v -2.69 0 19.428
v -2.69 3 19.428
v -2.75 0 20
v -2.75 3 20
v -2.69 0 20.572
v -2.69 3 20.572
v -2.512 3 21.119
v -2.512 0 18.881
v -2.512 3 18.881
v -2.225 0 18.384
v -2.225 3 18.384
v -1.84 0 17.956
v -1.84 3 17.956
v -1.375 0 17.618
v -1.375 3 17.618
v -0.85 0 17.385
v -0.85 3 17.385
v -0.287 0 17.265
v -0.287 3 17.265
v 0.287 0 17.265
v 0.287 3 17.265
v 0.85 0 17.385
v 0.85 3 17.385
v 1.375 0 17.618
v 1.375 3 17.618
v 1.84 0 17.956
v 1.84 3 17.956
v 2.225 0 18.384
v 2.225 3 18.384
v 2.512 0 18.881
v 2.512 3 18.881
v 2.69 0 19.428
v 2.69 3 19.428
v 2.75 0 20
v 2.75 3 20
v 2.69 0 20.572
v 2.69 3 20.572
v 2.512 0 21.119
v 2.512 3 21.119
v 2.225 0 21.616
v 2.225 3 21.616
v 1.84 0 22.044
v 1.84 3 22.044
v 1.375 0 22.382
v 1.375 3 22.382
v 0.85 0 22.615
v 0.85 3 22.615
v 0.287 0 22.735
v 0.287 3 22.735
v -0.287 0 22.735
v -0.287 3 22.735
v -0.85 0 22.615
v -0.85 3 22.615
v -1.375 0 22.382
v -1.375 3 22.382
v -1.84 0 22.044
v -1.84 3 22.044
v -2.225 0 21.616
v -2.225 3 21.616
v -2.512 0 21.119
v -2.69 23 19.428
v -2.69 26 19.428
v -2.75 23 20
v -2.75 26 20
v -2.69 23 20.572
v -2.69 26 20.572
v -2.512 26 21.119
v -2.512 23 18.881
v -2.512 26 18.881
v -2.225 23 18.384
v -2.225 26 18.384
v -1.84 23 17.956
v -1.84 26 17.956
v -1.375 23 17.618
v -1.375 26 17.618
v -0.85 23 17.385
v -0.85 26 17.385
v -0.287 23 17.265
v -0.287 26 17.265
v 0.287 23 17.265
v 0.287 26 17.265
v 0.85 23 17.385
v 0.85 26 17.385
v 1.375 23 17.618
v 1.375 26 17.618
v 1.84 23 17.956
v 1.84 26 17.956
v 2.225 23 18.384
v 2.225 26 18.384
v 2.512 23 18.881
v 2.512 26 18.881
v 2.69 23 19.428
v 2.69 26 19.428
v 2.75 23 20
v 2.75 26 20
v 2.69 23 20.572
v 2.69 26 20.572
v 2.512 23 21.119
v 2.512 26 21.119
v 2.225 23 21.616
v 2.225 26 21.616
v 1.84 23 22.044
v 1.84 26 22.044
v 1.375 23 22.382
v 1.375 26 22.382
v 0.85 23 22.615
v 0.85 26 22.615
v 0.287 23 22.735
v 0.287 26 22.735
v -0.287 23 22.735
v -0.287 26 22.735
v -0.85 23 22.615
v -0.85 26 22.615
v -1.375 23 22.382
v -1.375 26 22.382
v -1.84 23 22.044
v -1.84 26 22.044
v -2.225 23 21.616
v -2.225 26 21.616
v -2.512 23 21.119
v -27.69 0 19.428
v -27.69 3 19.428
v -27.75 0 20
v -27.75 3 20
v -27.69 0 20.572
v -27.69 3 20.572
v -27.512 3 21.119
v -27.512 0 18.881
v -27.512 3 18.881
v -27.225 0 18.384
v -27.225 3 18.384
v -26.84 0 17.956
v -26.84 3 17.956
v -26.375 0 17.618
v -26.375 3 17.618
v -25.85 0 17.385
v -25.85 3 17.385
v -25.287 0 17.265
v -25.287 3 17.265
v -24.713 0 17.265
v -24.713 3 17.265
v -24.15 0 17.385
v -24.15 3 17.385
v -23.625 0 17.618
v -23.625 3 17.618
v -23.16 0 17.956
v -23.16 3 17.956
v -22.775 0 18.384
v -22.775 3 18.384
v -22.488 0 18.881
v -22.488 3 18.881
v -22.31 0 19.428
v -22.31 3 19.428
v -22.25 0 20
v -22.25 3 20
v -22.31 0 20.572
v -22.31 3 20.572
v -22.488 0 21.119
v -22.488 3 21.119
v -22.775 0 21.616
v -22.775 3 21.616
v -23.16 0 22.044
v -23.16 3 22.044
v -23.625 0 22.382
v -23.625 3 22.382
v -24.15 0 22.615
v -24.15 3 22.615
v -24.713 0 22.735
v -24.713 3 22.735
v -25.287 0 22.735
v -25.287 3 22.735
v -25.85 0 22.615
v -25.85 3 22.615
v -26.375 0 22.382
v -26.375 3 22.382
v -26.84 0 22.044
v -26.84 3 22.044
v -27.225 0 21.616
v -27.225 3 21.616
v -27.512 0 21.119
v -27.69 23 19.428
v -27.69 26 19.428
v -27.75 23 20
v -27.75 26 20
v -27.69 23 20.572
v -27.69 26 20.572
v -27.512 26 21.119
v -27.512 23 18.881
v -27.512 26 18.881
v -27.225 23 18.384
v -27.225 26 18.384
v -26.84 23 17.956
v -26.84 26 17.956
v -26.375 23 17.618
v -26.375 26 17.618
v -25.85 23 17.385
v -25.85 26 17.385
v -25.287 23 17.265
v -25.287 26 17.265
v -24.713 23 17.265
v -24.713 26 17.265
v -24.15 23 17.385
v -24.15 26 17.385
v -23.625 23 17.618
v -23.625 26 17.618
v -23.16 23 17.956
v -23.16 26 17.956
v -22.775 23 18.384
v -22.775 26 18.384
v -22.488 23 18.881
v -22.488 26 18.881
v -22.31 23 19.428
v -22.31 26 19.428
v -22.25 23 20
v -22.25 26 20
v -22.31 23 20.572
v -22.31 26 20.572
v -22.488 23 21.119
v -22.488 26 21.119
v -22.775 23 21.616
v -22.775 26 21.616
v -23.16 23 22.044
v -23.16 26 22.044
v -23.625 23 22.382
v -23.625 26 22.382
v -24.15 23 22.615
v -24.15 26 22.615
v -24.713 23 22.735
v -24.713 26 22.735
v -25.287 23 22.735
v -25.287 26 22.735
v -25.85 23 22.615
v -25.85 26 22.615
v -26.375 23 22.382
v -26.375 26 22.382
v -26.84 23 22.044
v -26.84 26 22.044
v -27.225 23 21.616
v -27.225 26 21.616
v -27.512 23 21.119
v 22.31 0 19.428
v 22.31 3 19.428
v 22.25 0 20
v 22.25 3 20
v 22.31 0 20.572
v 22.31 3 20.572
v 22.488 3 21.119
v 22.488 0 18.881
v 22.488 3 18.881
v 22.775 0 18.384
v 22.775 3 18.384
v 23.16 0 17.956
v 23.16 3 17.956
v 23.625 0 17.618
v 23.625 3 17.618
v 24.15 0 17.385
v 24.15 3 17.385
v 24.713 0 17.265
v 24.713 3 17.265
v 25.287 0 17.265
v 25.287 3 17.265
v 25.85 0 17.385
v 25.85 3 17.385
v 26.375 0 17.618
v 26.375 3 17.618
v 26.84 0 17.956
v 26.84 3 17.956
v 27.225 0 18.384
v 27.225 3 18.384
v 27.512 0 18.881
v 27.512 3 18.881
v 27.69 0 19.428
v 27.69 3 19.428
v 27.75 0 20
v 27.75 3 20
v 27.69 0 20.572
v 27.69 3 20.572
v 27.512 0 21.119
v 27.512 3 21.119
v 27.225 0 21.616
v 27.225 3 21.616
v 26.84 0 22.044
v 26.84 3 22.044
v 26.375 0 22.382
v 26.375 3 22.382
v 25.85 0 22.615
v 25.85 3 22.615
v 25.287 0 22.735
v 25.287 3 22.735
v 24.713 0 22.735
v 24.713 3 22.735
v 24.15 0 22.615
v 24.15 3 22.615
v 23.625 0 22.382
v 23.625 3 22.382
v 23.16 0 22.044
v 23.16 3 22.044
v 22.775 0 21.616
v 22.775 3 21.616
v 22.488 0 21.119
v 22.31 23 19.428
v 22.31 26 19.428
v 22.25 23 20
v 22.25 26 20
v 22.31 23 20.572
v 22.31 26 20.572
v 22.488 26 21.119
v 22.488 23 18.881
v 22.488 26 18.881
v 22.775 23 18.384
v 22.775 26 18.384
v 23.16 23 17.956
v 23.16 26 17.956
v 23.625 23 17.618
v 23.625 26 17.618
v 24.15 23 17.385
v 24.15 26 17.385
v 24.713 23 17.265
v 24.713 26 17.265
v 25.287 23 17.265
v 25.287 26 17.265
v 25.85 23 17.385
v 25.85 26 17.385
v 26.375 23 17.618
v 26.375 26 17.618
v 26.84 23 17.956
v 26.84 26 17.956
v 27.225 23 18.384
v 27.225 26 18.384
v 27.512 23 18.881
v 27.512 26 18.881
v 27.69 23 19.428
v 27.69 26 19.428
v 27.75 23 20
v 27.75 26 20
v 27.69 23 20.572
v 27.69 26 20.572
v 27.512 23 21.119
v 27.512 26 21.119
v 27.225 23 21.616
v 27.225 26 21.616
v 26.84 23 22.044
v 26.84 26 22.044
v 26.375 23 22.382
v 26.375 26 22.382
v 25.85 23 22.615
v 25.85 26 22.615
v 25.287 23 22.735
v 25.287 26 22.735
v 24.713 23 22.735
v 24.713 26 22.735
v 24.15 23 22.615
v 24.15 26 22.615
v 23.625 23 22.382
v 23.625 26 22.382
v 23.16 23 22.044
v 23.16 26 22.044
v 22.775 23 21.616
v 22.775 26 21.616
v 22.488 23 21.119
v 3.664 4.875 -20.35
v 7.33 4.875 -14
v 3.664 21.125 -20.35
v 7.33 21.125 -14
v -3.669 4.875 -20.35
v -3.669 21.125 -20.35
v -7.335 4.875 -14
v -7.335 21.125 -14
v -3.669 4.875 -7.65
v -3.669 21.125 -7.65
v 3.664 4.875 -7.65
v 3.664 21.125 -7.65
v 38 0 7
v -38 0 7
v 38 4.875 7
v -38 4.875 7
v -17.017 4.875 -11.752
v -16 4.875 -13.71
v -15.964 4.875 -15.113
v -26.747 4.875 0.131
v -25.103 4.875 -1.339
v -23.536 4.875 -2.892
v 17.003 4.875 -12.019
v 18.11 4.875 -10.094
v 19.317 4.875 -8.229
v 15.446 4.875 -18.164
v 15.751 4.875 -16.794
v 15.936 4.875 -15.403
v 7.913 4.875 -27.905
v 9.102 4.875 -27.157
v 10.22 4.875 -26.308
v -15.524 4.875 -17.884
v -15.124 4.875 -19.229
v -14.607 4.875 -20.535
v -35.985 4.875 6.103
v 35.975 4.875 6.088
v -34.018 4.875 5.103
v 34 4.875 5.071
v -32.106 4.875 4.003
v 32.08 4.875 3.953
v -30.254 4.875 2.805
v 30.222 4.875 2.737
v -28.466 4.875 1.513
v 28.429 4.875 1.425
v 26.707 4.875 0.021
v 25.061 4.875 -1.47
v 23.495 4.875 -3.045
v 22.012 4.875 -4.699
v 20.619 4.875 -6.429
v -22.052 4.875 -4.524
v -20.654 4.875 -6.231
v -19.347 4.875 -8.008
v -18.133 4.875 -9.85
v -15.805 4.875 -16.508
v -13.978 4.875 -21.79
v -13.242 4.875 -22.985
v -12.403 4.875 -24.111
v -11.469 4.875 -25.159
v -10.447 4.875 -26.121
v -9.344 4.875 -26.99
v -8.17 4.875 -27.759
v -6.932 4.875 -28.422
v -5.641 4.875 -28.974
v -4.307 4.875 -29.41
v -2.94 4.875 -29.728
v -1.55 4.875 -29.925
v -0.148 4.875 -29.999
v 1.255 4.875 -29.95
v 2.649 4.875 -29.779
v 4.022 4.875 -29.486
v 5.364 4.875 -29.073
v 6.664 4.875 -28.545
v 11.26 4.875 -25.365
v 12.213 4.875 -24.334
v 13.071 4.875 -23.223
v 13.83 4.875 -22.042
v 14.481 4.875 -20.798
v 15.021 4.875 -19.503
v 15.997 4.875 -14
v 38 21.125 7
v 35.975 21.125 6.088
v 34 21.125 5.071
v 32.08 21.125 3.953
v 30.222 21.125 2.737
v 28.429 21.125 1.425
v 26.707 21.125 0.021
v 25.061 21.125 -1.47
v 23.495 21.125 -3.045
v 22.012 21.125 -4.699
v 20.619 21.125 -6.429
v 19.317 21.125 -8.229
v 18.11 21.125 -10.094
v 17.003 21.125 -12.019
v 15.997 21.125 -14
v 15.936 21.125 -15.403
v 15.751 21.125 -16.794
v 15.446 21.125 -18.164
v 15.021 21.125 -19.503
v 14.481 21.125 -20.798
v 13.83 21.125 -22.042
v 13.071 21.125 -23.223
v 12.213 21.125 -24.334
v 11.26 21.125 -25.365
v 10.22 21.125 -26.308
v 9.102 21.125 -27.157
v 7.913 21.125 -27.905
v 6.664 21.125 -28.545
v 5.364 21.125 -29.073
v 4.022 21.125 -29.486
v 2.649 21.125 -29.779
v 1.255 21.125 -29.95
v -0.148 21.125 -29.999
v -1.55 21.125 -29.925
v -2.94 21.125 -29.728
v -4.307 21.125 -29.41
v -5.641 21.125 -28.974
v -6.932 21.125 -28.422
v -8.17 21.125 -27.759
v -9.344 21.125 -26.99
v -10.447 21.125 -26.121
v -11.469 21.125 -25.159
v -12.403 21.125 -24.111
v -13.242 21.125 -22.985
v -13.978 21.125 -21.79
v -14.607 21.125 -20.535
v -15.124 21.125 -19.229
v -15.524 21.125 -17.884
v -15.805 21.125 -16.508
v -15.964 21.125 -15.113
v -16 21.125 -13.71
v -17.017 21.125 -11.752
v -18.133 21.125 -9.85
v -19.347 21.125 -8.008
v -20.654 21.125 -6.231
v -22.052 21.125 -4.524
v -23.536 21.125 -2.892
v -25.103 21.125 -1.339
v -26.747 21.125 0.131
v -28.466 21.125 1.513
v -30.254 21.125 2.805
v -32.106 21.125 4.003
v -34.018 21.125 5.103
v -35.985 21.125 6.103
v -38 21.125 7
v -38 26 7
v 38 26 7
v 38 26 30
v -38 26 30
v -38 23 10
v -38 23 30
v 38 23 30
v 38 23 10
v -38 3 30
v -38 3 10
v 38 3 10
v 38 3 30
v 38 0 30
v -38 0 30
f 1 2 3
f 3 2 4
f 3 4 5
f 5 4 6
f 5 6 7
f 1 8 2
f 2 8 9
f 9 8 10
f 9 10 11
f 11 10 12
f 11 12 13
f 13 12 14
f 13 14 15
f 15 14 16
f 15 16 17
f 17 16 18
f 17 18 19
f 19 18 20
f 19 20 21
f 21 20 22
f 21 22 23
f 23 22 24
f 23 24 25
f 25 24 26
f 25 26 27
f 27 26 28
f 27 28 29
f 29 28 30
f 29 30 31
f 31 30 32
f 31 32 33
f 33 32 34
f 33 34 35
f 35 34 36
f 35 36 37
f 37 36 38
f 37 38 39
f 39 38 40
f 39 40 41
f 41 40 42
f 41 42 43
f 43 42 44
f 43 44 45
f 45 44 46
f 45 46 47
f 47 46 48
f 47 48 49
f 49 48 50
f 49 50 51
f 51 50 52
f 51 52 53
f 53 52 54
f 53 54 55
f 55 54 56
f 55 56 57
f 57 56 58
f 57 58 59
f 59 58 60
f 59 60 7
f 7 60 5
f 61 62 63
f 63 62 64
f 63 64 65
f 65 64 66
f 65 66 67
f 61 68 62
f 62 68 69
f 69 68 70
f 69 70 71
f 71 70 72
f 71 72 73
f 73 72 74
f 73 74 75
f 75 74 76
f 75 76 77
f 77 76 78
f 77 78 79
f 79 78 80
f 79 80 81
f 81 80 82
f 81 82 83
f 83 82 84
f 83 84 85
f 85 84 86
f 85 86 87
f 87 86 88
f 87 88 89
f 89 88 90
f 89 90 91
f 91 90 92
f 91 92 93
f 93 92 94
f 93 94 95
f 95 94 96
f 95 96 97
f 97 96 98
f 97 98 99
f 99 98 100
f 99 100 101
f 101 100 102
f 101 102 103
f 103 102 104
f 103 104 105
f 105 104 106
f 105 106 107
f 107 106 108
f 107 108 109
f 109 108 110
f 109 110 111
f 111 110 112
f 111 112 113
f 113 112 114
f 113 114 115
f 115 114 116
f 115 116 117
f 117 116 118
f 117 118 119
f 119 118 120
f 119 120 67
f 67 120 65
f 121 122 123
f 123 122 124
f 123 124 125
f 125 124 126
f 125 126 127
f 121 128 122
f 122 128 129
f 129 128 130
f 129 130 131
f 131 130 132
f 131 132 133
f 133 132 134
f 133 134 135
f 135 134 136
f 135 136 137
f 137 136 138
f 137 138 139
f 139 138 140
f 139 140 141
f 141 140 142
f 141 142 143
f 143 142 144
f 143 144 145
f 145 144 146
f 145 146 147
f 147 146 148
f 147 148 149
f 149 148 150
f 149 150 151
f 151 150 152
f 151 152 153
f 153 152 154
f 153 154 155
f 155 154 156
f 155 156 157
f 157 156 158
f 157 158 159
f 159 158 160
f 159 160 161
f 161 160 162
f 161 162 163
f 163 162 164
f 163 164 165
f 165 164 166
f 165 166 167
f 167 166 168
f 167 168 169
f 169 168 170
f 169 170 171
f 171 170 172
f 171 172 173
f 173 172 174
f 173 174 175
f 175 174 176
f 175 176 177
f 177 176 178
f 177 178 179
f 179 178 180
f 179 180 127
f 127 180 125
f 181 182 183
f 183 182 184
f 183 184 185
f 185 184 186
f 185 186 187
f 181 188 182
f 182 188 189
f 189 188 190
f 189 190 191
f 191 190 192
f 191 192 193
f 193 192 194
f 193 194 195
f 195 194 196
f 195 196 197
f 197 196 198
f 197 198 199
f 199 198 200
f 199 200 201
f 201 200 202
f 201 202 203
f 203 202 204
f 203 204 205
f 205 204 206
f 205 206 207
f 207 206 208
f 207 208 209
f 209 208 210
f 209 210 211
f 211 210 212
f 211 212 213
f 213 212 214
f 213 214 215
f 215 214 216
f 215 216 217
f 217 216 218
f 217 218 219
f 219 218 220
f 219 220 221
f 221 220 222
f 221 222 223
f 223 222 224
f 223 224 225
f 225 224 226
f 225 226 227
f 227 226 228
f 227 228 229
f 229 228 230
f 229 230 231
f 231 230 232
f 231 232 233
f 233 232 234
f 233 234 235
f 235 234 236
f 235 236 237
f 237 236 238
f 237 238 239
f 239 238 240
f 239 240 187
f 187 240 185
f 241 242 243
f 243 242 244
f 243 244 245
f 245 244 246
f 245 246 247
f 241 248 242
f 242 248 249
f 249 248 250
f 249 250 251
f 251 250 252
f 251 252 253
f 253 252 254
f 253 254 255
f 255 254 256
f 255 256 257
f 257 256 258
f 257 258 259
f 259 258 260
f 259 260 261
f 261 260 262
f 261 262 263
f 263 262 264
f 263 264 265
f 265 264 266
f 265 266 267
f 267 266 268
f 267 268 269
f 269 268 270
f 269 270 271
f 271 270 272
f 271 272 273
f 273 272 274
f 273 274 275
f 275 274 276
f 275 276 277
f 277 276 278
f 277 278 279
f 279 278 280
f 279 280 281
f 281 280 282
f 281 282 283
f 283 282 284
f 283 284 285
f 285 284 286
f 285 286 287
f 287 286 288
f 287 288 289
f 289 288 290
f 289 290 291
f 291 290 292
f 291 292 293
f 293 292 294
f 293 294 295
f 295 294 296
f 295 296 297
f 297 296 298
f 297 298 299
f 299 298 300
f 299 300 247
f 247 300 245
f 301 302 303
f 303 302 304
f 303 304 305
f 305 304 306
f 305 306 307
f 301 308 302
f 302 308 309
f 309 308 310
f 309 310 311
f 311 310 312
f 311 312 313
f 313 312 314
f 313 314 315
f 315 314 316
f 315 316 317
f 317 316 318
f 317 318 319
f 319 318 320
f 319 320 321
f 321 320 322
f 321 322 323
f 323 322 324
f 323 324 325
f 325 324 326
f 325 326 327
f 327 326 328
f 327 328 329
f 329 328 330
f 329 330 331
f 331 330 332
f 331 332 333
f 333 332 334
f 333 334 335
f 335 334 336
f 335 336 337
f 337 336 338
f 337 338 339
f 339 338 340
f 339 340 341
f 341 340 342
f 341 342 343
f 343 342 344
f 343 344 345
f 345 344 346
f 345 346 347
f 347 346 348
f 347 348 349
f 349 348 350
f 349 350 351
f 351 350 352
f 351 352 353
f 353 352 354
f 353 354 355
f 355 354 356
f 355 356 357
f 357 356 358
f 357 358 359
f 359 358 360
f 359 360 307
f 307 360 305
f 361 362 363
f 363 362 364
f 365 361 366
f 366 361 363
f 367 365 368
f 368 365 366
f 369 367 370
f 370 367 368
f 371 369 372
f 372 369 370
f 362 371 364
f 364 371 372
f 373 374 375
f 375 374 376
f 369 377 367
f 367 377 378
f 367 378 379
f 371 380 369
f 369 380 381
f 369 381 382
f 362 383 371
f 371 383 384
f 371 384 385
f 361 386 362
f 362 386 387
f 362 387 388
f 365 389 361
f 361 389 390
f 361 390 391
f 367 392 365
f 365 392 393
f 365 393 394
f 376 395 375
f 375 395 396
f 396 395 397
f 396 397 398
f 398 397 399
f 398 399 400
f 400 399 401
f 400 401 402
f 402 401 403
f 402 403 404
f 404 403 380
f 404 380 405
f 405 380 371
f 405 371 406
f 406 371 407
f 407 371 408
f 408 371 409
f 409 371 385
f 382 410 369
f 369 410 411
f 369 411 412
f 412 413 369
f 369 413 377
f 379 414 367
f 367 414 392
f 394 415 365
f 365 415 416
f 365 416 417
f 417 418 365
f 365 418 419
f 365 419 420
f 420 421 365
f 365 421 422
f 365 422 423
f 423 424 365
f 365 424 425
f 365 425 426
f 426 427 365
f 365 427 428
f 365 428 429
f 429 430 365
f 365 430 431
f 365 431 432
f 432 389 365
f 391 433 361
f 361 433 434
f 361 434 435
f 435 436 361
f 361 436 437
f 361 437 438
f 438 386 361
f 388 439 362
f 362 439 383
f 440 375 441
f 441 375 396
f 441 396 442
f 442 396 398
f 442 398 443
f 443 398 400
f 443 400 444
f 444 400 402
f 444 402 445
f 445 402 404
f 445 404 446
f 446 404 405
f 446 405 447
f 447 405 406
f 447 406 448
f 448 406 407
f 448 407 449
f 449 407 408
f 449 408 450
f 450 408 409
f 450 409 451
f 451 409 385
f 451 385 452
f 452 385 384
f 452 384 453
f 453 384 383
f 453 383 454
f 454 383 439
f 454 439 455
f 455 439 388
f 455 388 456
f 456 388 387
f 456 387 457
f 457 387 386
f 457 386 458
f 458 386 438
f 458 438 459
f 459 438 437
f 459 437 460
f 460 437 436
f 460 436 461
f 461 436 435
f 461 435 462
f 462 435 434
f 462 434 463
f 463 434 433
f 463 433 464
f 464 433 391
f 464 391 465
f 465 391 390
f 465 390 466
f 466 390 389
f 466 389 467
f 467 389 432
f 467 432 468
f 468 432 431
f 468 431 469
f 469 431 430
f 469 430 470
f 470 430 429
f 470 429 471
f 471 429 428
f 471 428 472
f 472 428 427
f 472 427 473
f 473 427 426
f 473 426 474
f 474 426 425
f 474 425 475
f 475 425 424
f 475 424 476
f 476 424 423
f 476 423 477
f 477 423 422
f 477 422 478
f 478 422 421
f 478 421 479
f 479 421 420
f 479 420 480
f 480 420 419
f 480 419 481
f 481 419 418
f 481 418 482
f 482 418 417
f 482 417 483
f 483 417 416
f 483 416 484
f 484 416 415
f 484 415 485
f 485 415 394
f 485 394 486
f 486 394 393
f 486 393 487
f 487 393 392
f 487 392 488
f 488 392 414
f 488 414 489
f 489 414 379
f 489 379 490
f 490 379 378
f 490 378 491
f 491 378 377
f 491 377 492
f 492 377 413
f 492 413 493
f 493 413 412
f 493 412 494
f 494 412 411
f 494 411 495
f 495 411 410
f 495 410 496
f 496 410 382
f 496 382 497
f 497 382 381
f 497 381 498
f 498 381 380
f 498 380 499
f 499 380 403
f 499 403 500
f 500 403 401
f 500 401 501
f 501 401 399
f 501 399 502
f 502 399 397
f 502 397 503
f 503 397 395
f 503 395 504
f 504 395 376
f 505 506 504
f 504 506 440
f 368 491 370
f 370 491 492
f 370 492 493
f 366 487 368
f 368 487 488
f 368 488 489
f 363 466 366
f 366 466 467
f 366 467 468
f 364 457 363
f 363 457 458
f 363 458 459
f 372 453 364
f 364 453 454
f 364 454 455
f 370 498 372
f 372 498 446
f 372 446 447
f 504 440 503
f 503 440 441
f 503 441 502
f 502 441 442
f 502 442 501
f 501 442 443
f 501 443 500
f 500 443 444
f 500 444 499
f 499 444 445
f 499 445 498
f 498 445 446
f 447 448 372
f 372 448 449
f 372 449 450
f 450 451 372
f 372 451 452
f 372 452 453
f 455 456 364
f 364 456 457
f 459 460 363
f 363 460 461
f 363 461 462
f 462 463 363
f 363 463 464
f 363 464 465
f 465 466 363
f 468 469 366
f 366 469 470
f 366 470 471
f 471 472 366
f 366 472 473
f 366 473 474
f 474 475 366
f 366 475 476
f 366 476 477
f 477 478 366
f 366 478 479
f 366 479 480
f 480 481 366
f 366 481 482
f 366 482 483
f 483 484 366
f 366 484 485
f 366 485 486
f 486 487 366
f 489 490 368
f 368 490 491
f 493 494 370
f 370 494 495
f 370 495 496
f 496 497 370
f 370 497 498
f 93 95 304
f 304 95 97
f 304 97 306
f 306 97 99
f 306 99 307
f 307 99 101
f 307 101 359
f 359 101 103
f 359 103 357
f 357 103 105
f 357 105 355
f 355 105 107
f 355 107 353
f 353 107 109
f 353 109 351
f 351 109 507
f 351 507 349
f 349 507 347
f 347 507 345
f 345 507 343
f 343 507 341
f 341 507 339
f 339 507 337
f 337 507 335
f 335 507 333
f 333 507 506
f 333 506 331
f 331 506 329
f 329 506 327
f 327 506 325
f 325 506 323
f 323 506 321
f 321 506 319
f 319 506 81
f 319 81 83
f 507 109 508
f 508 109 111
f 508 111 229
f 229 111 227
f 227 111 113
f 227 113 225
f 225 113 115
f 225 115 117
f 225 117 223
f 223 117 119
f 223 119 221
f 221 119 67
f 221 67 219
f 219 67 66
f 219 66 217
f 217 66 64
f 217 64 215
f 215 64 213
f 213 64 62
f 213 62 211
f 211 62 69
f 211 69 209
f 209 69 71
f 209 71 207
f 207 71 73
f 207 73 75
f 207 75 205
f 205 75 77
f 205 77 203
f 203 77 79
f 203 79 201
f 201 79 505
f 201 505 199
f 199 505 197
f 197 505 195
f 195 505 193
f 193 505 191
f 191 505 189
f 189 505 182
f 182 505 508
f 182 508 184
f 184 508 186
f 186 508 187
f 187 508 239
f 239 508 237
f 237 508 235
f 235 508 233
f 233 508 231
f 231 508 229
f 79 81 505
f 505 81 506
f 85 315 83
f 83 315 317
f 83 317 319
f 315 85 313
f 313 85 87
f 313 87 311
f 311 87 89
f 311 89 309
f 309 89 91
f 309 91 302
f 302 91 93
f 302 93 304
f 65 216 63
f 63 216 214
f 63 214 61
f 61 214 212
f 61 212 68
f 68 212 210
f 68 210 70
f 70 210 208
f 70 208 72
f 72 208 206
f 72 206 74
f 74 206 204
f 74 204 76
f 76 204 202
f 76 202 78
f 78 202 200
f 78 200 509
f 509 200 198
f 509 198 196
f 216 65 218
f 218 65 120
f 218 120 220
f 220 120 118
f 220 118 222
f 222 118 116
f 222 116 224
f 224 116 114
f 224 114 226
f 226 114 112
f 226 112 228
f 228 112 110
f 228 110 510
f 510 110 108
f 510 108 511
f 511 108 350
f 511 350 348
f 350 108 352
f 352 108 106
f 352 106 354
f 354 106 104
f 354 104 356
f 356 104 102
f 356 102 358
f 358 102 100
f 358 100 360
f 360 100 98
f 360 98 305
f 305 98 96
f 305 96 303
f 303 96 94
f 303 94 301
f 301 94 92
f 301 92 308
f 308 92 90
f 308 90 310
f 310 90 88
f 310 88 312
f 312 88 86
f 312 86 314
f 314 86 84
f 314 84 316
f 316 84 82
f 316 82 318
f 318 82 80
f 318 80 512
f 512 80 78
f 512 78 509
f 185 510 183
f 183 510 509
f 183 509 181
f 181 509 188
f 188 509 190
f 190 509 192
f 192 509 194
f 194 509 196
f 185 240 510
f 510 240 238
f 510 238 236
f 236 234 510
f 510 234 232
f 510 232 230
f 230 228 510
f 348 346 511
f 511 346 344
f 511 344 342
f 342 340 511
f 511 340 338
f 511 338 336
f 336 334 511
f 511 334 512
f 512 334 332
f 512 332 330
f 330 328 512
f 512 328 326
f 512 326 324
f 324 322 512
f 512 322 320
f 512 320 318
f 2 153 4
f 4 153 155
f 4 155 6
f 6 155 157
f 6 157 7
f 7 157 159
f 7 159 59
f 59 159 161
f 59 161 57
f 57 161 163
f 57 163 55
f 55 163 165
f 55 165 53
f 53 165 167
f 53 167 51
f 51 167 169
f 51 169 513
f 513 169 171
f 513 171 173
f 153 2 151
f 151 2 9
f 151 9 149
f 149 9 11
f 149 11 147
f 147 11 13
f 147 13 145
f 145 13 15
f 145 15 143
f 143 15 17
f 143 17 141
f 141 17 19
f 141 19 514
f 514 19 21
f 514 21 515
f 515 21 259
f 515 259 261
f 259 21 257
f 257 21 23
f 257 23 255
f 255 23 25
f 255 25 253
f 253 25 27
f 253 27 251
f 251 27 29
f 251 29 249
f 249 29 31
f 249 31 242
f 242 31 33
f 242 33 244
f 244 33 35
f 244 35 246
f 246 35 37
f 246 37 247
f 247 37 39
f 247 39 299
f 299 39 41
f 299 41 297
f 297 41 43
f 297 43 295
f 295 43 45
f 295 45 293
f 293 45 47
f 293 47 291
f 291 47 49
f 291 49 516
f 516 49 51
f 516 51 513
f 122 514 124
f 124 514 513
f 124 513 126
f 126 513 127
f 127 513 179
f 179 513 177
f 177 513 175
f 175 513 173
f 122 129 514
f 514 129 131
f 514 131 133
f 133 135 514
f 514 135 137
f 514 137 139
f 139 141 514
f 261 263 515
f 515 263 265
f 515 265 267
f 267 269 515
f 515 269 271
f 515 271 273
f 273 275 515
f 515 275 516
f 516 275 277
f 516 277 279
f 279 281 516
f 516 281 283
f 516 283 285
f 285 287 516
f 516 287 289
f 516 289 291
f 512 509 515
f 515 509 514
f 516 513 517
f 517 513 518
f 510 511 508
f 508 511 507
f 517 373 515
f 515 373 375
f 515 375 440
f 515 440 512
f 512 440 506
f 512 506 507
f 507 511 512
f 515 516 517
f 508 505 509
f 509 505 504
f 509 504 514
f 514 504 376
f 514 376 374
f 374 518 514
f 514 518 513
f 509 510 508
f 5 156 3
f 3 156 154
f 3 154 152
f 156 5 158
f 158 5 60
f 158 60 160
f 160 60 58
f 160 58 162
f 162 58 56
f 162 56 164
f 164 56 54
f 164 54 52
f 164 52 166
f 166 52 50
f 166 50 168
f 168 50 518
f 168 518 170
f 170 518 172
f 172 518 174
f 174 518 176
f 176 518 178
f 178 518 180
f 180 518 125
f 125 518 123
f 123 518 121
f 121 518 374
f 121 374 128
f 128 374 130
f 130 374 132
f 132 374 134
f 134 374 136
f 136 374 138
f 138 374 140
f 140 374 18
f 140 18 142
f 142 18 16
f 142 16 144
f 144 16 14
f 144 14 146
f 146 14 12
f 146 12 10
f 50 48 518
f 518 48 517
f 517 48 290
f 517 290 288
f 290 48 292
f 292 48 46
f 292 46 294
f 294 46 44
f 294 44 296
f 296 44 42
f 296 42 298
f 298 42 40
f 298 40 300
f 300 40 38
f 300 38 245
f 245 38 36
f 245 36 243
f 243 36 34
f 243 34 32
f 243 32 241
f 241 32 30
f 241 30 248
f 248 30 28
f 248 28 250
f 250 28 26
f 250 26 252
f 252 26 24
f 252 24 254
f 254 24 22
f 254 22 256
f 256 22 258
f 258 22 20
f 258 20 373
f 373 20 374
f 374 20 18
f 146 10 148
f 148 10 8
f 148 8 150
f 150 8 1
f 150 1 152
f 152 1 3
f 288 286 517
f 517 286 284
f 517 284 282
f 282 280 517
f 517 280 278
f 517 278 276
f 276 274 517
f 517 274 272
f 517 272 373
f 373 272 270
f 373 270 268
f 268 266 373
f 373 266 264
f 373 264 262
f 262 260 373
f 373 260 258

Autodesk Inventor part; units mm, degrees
ref_plane "YZ Plane" through (0, 0, 0) normal (1, 0, 0) x (0, 1, 0)
ref_plane "XZ Plane" through (0, 0, 0) normal (0, 1, 0) x (-1, 0, 0)
ref_plane "XY Plane" through (0, 0, 0) normal (0, 0, 1) x (1, 0, 0)
sketch "Sketch1" plane through (0, 0, 0) normal (0, 1, 0) x (-1, 0, 0)
  line L0 (-38, 30) -> (38, 30)
  line L1 (38, 30) -> (38, -30)
  line L2 (38, -30) -> (-38, -30)
  line L3 (-38, -30) -> (-38, 30)
  line L4 (-38, 30) -> (38, -30) construction
  line L5 (38, 30) -> (-38, -30) construction
  point P0 (0, 0)
  dimension "d0" = 60
  dimension "d1" = 76
extrude "Extrusion1" add sketch "Sketch1" along normal blind 26
sketch "Sketch2" plane through (-38, 0, 30) normal (0, 0, 1) x (1, 0, 0)
  line L0 (0, 0) -> (0, 26) projected
  line L1 (76, 0) -> (76, 26) projected
  line L2 (0, 23) -> (76, 23)
  line L3 (76, 23) -> (76, 3)
  line L4 (76, 3) -> (0, 3)
  line L5 (0, 3) -> (0, 23)
  line L6 (0, 26) -> (76, 26) projected
  line L7 (0, 0) -> (76, 0) projected
  point P0 (38, 0)
  point P1 (0, 3)
  dimension "d4" = 3
  dimension "d5" = 3
extrude "Extrusion2" cut sketch "Sketch2" against normal blind 20 contours L0 L2 L1 L4
sketch "Sketch3" plane through (0, 26, 0) normal (0, 1, 0) x (1, 0, 0)
  arc A0 (15.9974, 14) -> (-16, 13.7099) centre (-0.0026, 14) ccw
  line L0 (38, 30) -> (-38, 30) projected
  line L1 (-38, 30) -> (-38, -30) projected
  arc A1 (-38, -7) -> (-16, 13.7099) centre (-54.3067, 32.3627) ccw
  line L2 (38, -30) -> (38, 30) projected
  line L3 (38, 30) -> (-38, 30) projected
  line L4 (38, -30) -> (-38, -30) projected
  arc A2 (15.9974, 14) -> (38, -7) centre (54.478, 32.2913) ccw
  line L5 (-38, -10) -> (-38, -30) projected
  line L6 (-38, -7) -> (38, -7)
  line L7 (38, -10) -> (-38, -10) projected
  point P0 (0, 0)
  point P1 (38, -7)
  point P2 (-0.0026, 30)
  dimension "d8" = 32
  dimension "d10" = 3
extrude "Extrusion3" cut sketch "Sketch3" against normal through all contours A0 L0 L2 A2 | A0 A1 L1 L0
sketch "Sketch5" plane through (0, 26, 0) normal (0, 1, 0) x (1, 0, 0)
  arc A0 (15.9974, 14) -> (-16, 13.7099) centre (-0.0026, 14) ccw
  line L0 (38, 30) -> (-38, 30)
  line L1 (-38, 30) -> (-38, -30)
  arc A1 (-38, -7) -> (-16, 13.7099) centre (-54.3067, 32.3627) ccw
  line L2 (38, -30) -> (38, 30)
  line L3 (38, 30) -> (-38, 30)
  line L4 (38, -30) -> (-38, -30)
  arc A2 (15.9974, 14) -> (38, -7) centre (54.478, 32.2913) ccw
  line L5 (-38, -10) -> (-38, -30)
  line L6 (-38, -7) -> (38, -7)
  line L7 (38, -10) -> (-38, -10)
  point P0 (0, 0)
  point P1 (0, 0)
  point P2 (38, -7)
  point P3 (-0.0026, 30)
  dimension "d13" = 32
  dimension "d14" = 3
sketch "Sketch7" plane through (0, 0, 0) normal (0, -1, 0) x (1, 0, 0)
  arc A0 (-16, -13.7099) -> (15.9974, -14) centre (-0.0026, -14) ccw projected
  arc A1 (-16, -13.7099) -> (15.9974, -14) centre (-0.0026, -14) ccw
  line L0 (38, 30) -> (38, 7) projected
  arc A2 (38, 7) -> (15.9974, -14) centre (54.478, -32.2913) ccw
  arc A3 (-16, -13.7099) -> (-38, 7) centre (-54.3067, -32.3627) ccw projected
  arc A4 (-16, -13.7099) -> (-38, 7) centre (-54.3067, -32.3627) ccw
  line L1 (-38, 10) -> (38, 10) projected
  line L2 (38, 10) -> (-38, 10)
  line L3 (38, 7) -> (38, 10)
  line L4 (-38, 7) -> (-38, 30) projected
  line L5 (-38, 7) -> (-38, 10)
  arc A5 (38, 7) -> (15.9974, -14) centre (54.478, -32.2913) ccw projected
  line L6 (38, 7) -> (-38, 7)
  point P0 (0, 0)
extrude "Extrusion4" cut sketch "Sketch5" against normal blind 4.875 contours A2 L6 A1 A0
extrude "Extrusion5" cut sketch "Sketch7" against normal blind 4.875 contours A3 L6 A2 A0
sketch "Sketch9" plane through (0, 21.125, 0) normal (0, 1, 0) x (1, 0, 0)
  arc A0 (15.9974, 14) -> (-16, 13.7099) centre (-0.0026, 14) ccw projected
  line L0 (3.6635, 20.35) -> (7.3297, 14)
  line L1 (7.3297, 14) -> (3.6635, 7.65)
  line L2 (3.6635, 7.65) -> (-3.6688, 7.65)
  line L3 (-3.6688, 7.65) -> (-7.335, 14)
  line L4 (-7.335, 14) -> (-3.6688, 20.35)
  line L5 (-3.6688, 20.35) -> (3.6635, 20.35)
  point P0 (0, 0)
  dimension "d19" = 12.7
extrude "Extrusion6" cut sketch "Sketch9" against normal through all
sketch "Sketch10" plane through (0, 26, 0) normal (0, 1, 0) x (1, 0, 0)
  circle A0 centre (0, -20) radius 5.8489
  circle A1 centre (25, -20) radius 5.871
  circle A2 centre (-25, -20) radius 5.8765
  line L0 (-38, -7) -> (-38, -30) projected
  line L1 (-38, -30) -> (38, -30) projected
  point P0 (0, 0)
  dimension "d23" = 10
  dimension "d24" = 10
  dimension "d25" = 10
  dimension "d27" = 0
  dimension "d28" = 25
  dimension "d29" = 25
hole "Hole1" at (-25, 26, 20) at (0, 26, 20) at (25, 26, 20) direction (0, -1, 0) diameter 5.5 end through all clearance for "Flat Head Machine Screw" size "M5" standard "Ansi Metric M Profile"
properties part number "CH-1-02-BearingBracket"
